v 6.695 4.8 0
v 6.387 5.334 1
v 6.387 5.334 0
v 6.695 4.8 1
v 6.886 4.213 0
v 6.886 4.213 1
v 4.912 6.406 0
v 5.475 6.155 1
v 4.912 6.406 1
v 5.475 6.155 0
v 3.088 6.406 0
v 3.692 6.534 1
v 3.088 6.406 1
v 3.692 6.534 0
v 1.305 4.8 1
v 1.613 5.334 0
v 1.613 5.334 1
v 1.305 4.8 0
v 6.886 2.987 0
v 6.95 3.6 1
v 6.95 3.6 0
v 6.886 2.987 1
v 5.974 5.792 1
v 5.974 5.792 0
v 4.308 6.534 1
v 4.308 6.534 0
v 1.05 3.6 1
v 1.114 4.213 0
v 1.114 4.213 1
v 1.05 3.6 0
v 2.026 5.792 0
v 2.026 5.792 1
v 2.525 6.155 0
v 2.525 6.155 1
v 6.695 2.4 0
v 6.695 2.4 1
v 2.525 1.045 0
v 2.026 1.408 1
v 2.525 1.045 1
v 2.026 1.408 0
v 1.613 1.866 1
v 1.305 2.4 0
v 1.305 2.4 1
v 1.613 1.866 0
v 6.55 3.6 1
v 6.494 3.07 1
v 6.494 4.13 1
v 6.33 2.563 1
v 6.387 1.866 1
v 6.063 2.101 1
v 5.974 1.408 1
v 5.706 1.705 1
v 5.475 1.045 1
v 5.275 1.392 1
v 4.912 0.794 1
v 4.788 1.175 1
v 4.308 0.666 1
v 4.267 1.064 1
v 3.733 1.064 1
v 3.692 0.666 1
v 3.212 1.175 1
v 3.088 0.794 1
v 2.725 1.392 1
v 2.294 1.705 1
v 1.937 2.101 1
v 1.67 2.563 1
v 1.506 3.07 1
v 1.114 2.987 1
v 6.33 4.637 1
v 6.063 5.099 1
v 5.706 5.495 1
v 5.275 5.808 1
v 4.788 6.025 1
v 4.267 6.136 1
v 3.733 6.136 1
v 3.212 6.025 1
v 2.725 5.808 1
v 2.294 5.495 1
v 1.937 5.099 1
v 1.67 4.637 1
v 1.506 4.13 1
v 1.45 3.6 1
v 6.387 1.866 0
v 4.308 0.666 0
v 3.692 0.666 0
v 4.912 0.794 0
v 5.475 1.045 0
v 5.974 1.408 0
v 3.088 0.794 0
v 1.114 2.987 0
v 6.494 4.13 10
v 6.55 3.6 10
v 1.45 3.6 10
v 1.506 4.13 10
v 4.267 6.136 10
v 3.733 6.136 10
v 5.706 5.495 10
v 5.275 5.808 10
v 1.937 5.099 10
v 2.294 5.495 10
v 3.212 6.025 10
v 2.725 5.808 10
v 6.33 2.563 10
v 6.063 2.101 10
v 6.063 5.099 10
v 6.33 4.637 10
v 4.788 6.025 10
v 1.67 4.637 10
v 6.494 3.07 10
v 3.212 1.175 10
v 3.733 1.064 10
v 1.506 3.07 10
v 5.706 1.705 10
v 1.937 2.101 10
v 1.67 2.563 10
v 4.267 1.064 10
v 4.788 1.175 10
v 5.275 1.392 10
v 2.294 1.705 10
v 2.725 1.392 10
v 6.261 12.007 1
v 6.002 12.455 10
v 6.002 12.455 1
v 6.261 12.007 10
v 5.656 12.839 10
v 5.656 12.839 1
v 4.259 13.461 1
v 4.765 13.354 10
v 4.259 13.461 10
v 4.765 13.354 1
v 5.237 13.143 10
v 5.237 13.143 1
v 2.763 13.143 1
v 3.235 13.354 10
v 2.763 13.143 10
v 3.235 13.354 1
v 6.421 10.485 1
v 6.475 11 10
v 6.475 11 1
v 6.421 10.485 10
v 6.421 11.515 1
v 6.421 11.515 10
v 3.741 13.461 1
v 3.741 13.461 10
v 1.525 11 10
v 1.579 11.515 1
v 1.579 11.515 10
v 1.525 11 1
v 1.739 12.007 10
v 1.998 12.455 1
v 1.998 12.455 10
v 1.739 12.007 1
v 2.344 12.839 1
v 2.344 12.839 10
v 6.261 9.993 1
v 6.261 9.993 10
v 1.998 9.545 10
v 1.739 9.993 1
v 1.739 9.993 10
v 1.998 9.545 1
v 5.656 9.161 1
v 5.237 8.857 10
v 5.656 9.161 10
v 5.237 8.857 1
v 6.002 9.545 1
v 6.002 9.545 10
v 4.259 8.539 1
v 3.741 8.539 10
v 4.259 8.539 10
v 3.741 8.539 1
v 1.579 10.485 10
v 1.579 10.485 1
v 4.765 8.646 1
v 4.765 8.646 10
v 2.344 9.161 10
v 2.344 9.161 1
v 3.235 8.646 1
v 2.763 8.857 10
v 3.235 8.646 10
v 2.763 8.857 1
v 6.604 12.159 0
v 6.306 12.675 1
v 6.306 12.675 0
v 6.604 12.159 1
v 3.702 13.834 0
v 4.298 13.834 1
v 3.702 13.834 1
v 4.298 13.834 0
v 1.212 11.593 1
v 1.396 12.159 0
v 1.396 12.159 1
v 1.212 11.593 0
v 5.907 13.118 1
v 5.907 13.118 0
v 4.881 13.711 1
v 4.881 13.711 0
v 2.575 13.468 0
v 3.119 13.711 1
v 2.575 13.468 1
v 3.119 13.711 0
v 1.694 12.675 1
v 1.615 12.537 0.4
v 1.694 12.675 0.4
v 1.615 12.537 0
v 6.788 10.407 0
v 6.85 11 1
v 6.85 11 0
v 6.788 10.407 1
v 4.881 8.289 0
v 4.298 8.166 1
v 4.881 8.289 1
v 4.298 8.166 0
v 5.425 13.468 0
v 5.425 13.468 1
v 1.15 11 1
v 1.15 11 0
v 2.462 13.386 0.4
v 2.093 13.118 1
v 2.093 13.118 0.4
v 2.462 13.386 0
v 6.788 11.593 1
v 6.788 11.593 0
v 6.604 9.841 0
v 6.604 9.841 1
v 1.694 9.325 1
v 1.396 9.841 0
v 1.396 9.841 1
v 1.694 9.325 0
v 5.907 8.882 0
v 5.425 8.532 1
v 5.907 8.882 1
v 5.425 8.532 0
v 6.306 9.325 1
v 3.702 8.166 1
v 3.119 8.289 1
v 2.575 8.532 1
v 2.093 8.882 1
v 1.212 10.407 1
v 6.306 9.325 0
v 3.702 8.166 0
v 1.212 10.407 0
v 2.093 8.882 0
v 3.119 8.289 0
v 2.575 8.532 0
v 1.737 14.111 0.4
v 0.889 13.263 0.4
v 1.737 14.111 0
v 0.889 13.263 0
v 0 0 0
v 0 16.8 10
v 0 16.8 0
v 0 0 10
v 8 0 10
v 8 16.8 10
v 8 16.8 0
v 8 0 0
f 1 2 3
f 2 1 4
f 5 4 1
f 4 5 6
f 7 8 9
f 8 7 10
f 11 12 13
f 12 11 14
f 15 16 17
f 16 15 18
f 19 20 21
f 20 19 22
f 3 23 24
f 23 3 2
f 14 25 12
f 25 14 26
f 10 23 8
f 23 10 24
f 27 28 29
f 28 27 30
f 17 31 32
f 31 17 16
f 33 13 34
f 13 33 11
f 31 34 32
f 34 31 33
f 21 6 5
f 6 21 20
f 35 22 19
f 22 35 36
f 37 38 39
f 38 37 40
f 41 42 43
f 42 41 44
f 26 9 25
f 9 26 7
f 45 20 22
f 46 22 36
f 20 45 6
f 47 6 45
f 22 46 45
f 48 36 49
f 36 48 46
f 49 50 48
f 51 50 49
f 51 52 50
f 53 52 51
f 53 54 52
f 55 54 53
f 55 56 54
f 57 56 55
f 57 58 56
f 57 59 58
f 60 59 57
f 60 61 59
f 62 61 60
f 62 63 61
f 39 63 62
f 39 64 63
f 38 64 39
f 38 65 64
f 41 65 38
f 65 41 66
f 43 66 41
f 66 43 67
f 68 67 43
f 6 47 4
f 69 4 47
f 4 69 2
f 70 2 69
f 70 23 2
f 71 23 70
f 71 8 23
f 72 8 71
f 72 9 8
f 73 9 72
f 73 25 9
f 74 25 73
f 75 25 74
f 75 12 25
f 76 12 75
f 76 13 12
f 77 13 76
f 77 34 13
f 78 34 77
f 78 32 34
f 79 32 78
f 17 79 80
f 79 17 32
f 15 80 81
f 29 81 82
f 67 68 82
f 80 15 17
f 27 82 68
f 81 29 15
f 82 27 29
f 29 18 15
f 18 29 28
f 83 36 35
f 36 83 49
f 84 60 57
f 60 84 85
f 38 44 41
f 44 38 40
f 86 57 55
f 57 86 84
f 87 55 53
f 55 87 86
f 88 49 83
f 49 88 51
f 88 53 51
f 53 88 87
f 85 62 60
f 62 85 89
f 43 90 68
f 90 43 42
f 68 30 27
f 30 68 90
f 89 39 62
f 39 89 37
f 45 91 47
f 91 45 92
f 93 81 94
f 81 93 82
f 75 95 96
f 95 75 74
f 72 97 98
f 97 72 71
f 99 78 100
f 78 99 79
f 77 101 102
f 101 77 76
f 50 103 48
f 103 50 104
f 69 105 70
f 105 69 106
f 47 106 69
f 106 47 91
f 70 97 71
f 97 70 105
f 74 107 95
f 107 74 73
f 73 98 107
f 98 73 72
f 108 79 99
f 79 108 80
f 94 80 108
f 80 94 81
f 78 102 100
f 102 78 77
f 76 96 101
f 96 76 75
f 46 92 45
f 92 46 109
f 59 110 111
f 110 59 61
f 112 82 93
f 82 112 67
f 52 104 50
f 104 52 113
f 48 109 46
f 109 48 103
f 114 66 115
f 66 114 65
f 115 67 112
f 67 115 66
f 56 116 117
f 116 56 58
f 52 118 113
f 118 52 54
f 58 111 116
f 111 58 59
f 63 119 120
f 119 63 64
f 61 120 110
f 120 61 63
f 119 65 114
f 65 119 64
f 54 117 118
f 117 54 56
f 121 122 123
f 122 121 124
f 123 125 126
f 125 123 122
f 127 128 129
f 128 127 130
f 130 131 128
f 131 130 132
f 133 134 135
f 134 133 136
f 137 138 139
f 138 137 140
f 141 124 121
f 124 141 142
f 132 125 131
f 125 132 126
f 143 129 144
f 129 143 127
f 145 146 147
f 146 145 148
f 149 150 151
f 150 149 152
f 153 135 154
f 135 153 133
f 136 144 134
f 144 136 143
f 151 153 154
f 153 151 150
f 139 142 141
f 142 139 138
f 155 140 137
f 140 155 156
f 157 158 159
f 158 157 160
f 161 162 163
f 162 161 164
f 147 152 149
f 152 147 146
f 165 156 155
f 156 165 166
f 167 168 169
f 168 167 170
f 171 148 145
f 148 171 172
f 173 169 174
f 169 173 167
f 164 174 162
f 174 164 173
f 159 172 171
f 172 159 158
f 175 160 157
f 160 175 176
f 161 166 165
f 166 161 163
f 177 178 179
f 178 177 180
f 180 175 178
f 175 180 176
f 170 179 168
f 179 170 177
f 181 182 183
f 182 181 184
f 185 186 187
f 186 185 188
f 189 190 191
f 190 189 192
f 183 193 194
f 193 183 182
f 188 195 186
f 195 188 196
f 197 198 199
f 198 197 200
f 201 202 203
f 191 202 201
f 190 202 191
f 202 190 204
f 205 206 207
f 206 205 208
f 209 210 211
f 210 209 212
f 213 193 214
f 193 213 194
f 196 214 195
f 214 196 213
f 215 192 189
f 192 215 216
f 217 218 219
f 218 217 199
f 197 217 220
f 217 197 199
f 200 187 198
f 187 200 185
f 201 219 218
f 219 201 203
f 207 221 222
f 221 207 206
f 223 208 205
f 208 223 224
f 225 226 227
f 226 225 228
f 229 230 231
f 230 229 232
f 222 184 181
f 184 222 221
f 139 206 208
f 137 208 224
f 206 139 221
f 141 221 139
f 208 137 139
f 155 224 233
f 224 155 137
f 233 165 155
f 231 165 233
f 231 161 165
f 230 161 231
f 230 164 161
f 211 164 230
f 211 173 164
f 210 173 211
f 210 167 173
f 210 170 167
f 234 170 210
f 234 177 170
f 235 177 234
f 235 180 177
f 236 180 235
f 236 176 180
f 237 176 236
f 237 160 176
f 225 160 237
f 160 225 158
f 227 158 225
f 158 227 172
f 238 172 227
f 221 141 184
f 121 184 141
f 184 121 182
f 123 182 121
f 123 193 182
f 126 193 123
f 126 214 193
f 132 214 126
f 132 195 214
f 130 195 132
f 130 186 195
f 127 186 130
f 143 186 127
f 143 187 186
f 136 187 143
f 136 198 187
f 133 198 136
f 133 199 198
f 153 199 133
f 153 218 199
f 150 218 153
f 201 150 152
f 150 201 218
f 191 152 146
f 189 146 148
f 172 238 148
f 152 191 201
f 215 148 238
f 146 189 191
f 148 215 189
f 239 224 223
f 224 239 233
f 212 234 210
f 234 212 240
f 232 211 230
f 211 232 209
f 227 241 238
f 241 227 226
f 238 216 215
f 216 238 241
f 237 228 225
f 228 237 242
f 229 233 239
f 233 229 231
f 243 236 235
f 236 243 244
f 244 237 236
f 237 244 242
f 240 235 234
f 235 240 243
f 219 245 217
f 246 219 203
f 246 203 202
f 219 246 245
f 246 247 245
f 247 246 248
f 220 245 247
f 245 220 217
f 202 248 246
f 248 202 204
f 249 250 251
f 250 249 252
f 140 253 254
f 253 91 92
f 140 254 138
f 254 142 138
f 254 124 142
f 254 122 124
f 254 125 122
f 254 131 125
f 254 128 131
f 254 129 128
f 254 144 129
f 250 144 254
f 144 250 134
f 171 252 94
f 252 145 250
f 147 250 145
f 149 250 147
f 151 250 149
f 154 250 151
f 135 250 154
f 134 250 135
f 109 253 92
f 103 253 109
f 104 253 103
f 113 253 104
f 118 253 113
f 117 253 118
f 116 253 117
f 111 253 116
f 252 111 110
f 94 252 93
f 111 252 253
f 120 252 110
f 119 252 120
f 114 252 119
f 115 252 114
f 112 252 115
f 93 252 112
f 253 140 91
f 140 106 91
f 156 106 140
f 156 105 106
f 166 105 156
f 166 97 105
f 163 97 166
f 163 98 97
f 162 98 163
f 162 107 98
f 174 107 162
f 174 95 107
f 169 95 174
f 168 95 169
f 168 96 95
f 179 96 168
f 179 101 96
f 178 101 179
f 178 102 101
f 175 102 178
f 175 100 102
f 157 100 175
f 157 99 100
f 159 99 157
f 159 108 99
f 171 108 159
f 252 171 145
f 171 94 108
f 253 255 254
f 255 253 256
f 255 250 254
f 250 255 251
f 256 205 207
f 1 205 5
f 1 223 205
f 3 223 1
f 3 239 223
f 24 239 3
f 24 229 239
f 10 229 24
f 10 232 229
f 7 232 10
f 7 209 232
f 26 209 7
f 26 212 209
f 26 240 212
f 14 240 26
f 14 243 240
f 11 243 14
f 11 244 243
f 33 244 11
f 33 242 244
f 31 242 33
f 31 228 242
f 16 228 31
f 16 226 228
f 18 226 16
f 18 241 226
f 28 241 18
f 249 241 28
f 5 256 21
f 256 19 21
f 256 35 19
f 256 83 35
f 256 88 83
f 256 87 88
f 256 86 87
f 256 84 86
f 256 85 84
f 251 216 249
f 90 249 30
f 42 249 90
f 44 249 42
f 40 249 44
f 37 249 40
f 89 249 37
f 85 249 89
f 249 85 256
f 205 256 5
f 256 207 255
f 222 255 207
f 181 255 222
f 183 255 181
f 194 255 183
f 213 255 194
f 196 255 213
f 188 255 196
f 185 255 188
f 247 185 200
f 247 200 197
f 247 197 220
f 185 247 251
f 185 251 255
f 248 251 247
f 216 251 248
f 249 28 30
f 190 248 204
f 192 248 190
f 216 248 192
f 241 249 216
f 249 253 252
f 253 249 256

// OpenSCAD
// file: ST-1KL3A.scad
module ST_1KL3A(){
  $fs=0.01;
    color("white") translate([0,0,6.2-4.65/2])sphere(4.2/2);
    color("gold") cylinder(h=6.2-4.65/2,r=4.65/2);
    color("gold") 
    cylinder(h=0.4, r=(5.8/2));
    rotate([0,0,90+45])translate([0,-0.5,0])cube([1+5.4/2, 1, 0.4]);
}

ST_1KL3A();
// file: OS5RKA5111A.scad
module OS5RKA5111A(){
    $fs=0.01;

    color("red")
    hull(){
        translate([0,0,8.7-2.5])sphere(2.5);
        cylinder(h=8.7-2.5,r=2.5);
    }
    color("red")
    difference(){
        cylinder(h=1, r=(5.8/2));
        translate([2.5, -5,-2])cube([10,10,10]);
    }

}
OS5RKA5111A();
// main file
use <OS5RKA5111A.scad>
use <ST-1KL3A.scad>

module sensor_holder_old(){
  color("black")
  difference(){
    $fs=0.01;
    hull(){
        translate([0,0,5.1+4.7+1+2-(7/2)]) rotate([0,90,0])cylinder(h=9, r=7/2);
        translate([0,-3.5,0]) cube([9,7,10]);
    }

    translate([-1,0,1+(4.7)+1+(5.1/2)]) rotate([0,90,0]) cylinder(h=12, r=5.1/2);
    translate([-1,0,1+(4.8/2)]) rotate([0,90,0]) cylinder(h=12, r=4.8/2);
  }
translate([-1,0,1+(4.7)+1+(5.1/2)]) rotate([0,90,0])OS5RKA5111A();
translate([-0.4,0,1+(4.7/2)]) rotate([0,90,0])ST_1KL3A();
}
//sensor_holder();

//Lx, Ly = LEDの位置xy
//Ix, Iy = IRの位置xy
//Ld =LEDの直径+0.1
//Id =IR sensorの直径+0.1


module sensor_case(width, depth, height,Lx, Ly, Ix,Iy){
    $fs=0.01;
    Ld=5.8+0.1; //LEDベース直径+0.1
    LLd=5+0.1; //LEDケース直径+0.1
    Id=5.4+0.3; //IRセンサーベース部直径+誤差
    ILd=4.65+0.3; //IRセンサー直径＋誤差
    IRB_diameter=6+0.1; //外形ベース寸法
    IRL_diameter=5.4+0.1;
    difference(){
        cube([width, height, depth]);
        //LED
        translate([Lx, Ly, -1])
        union(){
          cylinder(h=2, r=Ld/2);
          cylinder(h=depth+2, r=LLd/2);
        }
        //IR sensor
        translate([Ix, Iy, -1])rotate([0,0,0])         
        union(){
            cylinder(h=depth+2, r=ILd/2);
            cylinder(h=2, r=Id/2);
            rotate([0,0,90+45]) translate([0,-0.6,0]) cube([1.1+5.4/2, 1.2, 1.4]);
        }      
    }  
}


sensor_case(8,10, 16.8, 4, 3.6, 4, 11);
//translate([-1, 0, IR_length])
//rotate([0,90,0])


module sensor_holder(){
    width=8;
    height=16+0.8;
    depth=10;
    LED_length=7;
    IR_length=5.6;
    
    LED_hole_x =4;
    LED_hole_y =3.6;
    
    LED_diameter = 5;
    IR_diameter=6+0.1;
    IRL_diameer=5.8+0.1;
    IR_hole_x = 4;
    IR_hole_y=11;
    
    
   //   translate([-1, 0, IR_length])rotate([0,90,0])rotate([0,0,90+45])translate([0,-0.6,0])cube([1.1+5.4/2, 1.2, 1.4]);
    
    
  color("black")


  difference(){
    $fs=0.01;
    translate([0, -(width/2),0])cube([depth, width, height]);

    translate([-1,0,IR_length+LED_length]) rotate([0,90,0]) cylinder(h=1+1, r=(IR_diameter/2));
    translate([-1,0,IR_length])rotate([0,90,0])cylinder(h=1.5, r=(5.8/2));
      translate([-1, 0, IR_length])rotate([0,90,0])rotate([0,0,90+45])translate([0,-0.6,0])cube([1.1+5.4/2, 1.2, 1.4]);

    translate([-1,0,IR_length+LED_length]) rotate([0,90,0]) cylinder(h=depth+2, r=(LED_diameter+0.1)/2);
    translate([-1,0,IR_length]) rotate([0,90,0]) cylinder(h=depth+2, r=4.8/2);
  }
//translate([0,0,IR_length+LED_length]) rotate([0,90,0])OS5RKA5111A();
//translate([0,0,IR_length]) rotate([0,90,0])ST_1KL3A();
}
